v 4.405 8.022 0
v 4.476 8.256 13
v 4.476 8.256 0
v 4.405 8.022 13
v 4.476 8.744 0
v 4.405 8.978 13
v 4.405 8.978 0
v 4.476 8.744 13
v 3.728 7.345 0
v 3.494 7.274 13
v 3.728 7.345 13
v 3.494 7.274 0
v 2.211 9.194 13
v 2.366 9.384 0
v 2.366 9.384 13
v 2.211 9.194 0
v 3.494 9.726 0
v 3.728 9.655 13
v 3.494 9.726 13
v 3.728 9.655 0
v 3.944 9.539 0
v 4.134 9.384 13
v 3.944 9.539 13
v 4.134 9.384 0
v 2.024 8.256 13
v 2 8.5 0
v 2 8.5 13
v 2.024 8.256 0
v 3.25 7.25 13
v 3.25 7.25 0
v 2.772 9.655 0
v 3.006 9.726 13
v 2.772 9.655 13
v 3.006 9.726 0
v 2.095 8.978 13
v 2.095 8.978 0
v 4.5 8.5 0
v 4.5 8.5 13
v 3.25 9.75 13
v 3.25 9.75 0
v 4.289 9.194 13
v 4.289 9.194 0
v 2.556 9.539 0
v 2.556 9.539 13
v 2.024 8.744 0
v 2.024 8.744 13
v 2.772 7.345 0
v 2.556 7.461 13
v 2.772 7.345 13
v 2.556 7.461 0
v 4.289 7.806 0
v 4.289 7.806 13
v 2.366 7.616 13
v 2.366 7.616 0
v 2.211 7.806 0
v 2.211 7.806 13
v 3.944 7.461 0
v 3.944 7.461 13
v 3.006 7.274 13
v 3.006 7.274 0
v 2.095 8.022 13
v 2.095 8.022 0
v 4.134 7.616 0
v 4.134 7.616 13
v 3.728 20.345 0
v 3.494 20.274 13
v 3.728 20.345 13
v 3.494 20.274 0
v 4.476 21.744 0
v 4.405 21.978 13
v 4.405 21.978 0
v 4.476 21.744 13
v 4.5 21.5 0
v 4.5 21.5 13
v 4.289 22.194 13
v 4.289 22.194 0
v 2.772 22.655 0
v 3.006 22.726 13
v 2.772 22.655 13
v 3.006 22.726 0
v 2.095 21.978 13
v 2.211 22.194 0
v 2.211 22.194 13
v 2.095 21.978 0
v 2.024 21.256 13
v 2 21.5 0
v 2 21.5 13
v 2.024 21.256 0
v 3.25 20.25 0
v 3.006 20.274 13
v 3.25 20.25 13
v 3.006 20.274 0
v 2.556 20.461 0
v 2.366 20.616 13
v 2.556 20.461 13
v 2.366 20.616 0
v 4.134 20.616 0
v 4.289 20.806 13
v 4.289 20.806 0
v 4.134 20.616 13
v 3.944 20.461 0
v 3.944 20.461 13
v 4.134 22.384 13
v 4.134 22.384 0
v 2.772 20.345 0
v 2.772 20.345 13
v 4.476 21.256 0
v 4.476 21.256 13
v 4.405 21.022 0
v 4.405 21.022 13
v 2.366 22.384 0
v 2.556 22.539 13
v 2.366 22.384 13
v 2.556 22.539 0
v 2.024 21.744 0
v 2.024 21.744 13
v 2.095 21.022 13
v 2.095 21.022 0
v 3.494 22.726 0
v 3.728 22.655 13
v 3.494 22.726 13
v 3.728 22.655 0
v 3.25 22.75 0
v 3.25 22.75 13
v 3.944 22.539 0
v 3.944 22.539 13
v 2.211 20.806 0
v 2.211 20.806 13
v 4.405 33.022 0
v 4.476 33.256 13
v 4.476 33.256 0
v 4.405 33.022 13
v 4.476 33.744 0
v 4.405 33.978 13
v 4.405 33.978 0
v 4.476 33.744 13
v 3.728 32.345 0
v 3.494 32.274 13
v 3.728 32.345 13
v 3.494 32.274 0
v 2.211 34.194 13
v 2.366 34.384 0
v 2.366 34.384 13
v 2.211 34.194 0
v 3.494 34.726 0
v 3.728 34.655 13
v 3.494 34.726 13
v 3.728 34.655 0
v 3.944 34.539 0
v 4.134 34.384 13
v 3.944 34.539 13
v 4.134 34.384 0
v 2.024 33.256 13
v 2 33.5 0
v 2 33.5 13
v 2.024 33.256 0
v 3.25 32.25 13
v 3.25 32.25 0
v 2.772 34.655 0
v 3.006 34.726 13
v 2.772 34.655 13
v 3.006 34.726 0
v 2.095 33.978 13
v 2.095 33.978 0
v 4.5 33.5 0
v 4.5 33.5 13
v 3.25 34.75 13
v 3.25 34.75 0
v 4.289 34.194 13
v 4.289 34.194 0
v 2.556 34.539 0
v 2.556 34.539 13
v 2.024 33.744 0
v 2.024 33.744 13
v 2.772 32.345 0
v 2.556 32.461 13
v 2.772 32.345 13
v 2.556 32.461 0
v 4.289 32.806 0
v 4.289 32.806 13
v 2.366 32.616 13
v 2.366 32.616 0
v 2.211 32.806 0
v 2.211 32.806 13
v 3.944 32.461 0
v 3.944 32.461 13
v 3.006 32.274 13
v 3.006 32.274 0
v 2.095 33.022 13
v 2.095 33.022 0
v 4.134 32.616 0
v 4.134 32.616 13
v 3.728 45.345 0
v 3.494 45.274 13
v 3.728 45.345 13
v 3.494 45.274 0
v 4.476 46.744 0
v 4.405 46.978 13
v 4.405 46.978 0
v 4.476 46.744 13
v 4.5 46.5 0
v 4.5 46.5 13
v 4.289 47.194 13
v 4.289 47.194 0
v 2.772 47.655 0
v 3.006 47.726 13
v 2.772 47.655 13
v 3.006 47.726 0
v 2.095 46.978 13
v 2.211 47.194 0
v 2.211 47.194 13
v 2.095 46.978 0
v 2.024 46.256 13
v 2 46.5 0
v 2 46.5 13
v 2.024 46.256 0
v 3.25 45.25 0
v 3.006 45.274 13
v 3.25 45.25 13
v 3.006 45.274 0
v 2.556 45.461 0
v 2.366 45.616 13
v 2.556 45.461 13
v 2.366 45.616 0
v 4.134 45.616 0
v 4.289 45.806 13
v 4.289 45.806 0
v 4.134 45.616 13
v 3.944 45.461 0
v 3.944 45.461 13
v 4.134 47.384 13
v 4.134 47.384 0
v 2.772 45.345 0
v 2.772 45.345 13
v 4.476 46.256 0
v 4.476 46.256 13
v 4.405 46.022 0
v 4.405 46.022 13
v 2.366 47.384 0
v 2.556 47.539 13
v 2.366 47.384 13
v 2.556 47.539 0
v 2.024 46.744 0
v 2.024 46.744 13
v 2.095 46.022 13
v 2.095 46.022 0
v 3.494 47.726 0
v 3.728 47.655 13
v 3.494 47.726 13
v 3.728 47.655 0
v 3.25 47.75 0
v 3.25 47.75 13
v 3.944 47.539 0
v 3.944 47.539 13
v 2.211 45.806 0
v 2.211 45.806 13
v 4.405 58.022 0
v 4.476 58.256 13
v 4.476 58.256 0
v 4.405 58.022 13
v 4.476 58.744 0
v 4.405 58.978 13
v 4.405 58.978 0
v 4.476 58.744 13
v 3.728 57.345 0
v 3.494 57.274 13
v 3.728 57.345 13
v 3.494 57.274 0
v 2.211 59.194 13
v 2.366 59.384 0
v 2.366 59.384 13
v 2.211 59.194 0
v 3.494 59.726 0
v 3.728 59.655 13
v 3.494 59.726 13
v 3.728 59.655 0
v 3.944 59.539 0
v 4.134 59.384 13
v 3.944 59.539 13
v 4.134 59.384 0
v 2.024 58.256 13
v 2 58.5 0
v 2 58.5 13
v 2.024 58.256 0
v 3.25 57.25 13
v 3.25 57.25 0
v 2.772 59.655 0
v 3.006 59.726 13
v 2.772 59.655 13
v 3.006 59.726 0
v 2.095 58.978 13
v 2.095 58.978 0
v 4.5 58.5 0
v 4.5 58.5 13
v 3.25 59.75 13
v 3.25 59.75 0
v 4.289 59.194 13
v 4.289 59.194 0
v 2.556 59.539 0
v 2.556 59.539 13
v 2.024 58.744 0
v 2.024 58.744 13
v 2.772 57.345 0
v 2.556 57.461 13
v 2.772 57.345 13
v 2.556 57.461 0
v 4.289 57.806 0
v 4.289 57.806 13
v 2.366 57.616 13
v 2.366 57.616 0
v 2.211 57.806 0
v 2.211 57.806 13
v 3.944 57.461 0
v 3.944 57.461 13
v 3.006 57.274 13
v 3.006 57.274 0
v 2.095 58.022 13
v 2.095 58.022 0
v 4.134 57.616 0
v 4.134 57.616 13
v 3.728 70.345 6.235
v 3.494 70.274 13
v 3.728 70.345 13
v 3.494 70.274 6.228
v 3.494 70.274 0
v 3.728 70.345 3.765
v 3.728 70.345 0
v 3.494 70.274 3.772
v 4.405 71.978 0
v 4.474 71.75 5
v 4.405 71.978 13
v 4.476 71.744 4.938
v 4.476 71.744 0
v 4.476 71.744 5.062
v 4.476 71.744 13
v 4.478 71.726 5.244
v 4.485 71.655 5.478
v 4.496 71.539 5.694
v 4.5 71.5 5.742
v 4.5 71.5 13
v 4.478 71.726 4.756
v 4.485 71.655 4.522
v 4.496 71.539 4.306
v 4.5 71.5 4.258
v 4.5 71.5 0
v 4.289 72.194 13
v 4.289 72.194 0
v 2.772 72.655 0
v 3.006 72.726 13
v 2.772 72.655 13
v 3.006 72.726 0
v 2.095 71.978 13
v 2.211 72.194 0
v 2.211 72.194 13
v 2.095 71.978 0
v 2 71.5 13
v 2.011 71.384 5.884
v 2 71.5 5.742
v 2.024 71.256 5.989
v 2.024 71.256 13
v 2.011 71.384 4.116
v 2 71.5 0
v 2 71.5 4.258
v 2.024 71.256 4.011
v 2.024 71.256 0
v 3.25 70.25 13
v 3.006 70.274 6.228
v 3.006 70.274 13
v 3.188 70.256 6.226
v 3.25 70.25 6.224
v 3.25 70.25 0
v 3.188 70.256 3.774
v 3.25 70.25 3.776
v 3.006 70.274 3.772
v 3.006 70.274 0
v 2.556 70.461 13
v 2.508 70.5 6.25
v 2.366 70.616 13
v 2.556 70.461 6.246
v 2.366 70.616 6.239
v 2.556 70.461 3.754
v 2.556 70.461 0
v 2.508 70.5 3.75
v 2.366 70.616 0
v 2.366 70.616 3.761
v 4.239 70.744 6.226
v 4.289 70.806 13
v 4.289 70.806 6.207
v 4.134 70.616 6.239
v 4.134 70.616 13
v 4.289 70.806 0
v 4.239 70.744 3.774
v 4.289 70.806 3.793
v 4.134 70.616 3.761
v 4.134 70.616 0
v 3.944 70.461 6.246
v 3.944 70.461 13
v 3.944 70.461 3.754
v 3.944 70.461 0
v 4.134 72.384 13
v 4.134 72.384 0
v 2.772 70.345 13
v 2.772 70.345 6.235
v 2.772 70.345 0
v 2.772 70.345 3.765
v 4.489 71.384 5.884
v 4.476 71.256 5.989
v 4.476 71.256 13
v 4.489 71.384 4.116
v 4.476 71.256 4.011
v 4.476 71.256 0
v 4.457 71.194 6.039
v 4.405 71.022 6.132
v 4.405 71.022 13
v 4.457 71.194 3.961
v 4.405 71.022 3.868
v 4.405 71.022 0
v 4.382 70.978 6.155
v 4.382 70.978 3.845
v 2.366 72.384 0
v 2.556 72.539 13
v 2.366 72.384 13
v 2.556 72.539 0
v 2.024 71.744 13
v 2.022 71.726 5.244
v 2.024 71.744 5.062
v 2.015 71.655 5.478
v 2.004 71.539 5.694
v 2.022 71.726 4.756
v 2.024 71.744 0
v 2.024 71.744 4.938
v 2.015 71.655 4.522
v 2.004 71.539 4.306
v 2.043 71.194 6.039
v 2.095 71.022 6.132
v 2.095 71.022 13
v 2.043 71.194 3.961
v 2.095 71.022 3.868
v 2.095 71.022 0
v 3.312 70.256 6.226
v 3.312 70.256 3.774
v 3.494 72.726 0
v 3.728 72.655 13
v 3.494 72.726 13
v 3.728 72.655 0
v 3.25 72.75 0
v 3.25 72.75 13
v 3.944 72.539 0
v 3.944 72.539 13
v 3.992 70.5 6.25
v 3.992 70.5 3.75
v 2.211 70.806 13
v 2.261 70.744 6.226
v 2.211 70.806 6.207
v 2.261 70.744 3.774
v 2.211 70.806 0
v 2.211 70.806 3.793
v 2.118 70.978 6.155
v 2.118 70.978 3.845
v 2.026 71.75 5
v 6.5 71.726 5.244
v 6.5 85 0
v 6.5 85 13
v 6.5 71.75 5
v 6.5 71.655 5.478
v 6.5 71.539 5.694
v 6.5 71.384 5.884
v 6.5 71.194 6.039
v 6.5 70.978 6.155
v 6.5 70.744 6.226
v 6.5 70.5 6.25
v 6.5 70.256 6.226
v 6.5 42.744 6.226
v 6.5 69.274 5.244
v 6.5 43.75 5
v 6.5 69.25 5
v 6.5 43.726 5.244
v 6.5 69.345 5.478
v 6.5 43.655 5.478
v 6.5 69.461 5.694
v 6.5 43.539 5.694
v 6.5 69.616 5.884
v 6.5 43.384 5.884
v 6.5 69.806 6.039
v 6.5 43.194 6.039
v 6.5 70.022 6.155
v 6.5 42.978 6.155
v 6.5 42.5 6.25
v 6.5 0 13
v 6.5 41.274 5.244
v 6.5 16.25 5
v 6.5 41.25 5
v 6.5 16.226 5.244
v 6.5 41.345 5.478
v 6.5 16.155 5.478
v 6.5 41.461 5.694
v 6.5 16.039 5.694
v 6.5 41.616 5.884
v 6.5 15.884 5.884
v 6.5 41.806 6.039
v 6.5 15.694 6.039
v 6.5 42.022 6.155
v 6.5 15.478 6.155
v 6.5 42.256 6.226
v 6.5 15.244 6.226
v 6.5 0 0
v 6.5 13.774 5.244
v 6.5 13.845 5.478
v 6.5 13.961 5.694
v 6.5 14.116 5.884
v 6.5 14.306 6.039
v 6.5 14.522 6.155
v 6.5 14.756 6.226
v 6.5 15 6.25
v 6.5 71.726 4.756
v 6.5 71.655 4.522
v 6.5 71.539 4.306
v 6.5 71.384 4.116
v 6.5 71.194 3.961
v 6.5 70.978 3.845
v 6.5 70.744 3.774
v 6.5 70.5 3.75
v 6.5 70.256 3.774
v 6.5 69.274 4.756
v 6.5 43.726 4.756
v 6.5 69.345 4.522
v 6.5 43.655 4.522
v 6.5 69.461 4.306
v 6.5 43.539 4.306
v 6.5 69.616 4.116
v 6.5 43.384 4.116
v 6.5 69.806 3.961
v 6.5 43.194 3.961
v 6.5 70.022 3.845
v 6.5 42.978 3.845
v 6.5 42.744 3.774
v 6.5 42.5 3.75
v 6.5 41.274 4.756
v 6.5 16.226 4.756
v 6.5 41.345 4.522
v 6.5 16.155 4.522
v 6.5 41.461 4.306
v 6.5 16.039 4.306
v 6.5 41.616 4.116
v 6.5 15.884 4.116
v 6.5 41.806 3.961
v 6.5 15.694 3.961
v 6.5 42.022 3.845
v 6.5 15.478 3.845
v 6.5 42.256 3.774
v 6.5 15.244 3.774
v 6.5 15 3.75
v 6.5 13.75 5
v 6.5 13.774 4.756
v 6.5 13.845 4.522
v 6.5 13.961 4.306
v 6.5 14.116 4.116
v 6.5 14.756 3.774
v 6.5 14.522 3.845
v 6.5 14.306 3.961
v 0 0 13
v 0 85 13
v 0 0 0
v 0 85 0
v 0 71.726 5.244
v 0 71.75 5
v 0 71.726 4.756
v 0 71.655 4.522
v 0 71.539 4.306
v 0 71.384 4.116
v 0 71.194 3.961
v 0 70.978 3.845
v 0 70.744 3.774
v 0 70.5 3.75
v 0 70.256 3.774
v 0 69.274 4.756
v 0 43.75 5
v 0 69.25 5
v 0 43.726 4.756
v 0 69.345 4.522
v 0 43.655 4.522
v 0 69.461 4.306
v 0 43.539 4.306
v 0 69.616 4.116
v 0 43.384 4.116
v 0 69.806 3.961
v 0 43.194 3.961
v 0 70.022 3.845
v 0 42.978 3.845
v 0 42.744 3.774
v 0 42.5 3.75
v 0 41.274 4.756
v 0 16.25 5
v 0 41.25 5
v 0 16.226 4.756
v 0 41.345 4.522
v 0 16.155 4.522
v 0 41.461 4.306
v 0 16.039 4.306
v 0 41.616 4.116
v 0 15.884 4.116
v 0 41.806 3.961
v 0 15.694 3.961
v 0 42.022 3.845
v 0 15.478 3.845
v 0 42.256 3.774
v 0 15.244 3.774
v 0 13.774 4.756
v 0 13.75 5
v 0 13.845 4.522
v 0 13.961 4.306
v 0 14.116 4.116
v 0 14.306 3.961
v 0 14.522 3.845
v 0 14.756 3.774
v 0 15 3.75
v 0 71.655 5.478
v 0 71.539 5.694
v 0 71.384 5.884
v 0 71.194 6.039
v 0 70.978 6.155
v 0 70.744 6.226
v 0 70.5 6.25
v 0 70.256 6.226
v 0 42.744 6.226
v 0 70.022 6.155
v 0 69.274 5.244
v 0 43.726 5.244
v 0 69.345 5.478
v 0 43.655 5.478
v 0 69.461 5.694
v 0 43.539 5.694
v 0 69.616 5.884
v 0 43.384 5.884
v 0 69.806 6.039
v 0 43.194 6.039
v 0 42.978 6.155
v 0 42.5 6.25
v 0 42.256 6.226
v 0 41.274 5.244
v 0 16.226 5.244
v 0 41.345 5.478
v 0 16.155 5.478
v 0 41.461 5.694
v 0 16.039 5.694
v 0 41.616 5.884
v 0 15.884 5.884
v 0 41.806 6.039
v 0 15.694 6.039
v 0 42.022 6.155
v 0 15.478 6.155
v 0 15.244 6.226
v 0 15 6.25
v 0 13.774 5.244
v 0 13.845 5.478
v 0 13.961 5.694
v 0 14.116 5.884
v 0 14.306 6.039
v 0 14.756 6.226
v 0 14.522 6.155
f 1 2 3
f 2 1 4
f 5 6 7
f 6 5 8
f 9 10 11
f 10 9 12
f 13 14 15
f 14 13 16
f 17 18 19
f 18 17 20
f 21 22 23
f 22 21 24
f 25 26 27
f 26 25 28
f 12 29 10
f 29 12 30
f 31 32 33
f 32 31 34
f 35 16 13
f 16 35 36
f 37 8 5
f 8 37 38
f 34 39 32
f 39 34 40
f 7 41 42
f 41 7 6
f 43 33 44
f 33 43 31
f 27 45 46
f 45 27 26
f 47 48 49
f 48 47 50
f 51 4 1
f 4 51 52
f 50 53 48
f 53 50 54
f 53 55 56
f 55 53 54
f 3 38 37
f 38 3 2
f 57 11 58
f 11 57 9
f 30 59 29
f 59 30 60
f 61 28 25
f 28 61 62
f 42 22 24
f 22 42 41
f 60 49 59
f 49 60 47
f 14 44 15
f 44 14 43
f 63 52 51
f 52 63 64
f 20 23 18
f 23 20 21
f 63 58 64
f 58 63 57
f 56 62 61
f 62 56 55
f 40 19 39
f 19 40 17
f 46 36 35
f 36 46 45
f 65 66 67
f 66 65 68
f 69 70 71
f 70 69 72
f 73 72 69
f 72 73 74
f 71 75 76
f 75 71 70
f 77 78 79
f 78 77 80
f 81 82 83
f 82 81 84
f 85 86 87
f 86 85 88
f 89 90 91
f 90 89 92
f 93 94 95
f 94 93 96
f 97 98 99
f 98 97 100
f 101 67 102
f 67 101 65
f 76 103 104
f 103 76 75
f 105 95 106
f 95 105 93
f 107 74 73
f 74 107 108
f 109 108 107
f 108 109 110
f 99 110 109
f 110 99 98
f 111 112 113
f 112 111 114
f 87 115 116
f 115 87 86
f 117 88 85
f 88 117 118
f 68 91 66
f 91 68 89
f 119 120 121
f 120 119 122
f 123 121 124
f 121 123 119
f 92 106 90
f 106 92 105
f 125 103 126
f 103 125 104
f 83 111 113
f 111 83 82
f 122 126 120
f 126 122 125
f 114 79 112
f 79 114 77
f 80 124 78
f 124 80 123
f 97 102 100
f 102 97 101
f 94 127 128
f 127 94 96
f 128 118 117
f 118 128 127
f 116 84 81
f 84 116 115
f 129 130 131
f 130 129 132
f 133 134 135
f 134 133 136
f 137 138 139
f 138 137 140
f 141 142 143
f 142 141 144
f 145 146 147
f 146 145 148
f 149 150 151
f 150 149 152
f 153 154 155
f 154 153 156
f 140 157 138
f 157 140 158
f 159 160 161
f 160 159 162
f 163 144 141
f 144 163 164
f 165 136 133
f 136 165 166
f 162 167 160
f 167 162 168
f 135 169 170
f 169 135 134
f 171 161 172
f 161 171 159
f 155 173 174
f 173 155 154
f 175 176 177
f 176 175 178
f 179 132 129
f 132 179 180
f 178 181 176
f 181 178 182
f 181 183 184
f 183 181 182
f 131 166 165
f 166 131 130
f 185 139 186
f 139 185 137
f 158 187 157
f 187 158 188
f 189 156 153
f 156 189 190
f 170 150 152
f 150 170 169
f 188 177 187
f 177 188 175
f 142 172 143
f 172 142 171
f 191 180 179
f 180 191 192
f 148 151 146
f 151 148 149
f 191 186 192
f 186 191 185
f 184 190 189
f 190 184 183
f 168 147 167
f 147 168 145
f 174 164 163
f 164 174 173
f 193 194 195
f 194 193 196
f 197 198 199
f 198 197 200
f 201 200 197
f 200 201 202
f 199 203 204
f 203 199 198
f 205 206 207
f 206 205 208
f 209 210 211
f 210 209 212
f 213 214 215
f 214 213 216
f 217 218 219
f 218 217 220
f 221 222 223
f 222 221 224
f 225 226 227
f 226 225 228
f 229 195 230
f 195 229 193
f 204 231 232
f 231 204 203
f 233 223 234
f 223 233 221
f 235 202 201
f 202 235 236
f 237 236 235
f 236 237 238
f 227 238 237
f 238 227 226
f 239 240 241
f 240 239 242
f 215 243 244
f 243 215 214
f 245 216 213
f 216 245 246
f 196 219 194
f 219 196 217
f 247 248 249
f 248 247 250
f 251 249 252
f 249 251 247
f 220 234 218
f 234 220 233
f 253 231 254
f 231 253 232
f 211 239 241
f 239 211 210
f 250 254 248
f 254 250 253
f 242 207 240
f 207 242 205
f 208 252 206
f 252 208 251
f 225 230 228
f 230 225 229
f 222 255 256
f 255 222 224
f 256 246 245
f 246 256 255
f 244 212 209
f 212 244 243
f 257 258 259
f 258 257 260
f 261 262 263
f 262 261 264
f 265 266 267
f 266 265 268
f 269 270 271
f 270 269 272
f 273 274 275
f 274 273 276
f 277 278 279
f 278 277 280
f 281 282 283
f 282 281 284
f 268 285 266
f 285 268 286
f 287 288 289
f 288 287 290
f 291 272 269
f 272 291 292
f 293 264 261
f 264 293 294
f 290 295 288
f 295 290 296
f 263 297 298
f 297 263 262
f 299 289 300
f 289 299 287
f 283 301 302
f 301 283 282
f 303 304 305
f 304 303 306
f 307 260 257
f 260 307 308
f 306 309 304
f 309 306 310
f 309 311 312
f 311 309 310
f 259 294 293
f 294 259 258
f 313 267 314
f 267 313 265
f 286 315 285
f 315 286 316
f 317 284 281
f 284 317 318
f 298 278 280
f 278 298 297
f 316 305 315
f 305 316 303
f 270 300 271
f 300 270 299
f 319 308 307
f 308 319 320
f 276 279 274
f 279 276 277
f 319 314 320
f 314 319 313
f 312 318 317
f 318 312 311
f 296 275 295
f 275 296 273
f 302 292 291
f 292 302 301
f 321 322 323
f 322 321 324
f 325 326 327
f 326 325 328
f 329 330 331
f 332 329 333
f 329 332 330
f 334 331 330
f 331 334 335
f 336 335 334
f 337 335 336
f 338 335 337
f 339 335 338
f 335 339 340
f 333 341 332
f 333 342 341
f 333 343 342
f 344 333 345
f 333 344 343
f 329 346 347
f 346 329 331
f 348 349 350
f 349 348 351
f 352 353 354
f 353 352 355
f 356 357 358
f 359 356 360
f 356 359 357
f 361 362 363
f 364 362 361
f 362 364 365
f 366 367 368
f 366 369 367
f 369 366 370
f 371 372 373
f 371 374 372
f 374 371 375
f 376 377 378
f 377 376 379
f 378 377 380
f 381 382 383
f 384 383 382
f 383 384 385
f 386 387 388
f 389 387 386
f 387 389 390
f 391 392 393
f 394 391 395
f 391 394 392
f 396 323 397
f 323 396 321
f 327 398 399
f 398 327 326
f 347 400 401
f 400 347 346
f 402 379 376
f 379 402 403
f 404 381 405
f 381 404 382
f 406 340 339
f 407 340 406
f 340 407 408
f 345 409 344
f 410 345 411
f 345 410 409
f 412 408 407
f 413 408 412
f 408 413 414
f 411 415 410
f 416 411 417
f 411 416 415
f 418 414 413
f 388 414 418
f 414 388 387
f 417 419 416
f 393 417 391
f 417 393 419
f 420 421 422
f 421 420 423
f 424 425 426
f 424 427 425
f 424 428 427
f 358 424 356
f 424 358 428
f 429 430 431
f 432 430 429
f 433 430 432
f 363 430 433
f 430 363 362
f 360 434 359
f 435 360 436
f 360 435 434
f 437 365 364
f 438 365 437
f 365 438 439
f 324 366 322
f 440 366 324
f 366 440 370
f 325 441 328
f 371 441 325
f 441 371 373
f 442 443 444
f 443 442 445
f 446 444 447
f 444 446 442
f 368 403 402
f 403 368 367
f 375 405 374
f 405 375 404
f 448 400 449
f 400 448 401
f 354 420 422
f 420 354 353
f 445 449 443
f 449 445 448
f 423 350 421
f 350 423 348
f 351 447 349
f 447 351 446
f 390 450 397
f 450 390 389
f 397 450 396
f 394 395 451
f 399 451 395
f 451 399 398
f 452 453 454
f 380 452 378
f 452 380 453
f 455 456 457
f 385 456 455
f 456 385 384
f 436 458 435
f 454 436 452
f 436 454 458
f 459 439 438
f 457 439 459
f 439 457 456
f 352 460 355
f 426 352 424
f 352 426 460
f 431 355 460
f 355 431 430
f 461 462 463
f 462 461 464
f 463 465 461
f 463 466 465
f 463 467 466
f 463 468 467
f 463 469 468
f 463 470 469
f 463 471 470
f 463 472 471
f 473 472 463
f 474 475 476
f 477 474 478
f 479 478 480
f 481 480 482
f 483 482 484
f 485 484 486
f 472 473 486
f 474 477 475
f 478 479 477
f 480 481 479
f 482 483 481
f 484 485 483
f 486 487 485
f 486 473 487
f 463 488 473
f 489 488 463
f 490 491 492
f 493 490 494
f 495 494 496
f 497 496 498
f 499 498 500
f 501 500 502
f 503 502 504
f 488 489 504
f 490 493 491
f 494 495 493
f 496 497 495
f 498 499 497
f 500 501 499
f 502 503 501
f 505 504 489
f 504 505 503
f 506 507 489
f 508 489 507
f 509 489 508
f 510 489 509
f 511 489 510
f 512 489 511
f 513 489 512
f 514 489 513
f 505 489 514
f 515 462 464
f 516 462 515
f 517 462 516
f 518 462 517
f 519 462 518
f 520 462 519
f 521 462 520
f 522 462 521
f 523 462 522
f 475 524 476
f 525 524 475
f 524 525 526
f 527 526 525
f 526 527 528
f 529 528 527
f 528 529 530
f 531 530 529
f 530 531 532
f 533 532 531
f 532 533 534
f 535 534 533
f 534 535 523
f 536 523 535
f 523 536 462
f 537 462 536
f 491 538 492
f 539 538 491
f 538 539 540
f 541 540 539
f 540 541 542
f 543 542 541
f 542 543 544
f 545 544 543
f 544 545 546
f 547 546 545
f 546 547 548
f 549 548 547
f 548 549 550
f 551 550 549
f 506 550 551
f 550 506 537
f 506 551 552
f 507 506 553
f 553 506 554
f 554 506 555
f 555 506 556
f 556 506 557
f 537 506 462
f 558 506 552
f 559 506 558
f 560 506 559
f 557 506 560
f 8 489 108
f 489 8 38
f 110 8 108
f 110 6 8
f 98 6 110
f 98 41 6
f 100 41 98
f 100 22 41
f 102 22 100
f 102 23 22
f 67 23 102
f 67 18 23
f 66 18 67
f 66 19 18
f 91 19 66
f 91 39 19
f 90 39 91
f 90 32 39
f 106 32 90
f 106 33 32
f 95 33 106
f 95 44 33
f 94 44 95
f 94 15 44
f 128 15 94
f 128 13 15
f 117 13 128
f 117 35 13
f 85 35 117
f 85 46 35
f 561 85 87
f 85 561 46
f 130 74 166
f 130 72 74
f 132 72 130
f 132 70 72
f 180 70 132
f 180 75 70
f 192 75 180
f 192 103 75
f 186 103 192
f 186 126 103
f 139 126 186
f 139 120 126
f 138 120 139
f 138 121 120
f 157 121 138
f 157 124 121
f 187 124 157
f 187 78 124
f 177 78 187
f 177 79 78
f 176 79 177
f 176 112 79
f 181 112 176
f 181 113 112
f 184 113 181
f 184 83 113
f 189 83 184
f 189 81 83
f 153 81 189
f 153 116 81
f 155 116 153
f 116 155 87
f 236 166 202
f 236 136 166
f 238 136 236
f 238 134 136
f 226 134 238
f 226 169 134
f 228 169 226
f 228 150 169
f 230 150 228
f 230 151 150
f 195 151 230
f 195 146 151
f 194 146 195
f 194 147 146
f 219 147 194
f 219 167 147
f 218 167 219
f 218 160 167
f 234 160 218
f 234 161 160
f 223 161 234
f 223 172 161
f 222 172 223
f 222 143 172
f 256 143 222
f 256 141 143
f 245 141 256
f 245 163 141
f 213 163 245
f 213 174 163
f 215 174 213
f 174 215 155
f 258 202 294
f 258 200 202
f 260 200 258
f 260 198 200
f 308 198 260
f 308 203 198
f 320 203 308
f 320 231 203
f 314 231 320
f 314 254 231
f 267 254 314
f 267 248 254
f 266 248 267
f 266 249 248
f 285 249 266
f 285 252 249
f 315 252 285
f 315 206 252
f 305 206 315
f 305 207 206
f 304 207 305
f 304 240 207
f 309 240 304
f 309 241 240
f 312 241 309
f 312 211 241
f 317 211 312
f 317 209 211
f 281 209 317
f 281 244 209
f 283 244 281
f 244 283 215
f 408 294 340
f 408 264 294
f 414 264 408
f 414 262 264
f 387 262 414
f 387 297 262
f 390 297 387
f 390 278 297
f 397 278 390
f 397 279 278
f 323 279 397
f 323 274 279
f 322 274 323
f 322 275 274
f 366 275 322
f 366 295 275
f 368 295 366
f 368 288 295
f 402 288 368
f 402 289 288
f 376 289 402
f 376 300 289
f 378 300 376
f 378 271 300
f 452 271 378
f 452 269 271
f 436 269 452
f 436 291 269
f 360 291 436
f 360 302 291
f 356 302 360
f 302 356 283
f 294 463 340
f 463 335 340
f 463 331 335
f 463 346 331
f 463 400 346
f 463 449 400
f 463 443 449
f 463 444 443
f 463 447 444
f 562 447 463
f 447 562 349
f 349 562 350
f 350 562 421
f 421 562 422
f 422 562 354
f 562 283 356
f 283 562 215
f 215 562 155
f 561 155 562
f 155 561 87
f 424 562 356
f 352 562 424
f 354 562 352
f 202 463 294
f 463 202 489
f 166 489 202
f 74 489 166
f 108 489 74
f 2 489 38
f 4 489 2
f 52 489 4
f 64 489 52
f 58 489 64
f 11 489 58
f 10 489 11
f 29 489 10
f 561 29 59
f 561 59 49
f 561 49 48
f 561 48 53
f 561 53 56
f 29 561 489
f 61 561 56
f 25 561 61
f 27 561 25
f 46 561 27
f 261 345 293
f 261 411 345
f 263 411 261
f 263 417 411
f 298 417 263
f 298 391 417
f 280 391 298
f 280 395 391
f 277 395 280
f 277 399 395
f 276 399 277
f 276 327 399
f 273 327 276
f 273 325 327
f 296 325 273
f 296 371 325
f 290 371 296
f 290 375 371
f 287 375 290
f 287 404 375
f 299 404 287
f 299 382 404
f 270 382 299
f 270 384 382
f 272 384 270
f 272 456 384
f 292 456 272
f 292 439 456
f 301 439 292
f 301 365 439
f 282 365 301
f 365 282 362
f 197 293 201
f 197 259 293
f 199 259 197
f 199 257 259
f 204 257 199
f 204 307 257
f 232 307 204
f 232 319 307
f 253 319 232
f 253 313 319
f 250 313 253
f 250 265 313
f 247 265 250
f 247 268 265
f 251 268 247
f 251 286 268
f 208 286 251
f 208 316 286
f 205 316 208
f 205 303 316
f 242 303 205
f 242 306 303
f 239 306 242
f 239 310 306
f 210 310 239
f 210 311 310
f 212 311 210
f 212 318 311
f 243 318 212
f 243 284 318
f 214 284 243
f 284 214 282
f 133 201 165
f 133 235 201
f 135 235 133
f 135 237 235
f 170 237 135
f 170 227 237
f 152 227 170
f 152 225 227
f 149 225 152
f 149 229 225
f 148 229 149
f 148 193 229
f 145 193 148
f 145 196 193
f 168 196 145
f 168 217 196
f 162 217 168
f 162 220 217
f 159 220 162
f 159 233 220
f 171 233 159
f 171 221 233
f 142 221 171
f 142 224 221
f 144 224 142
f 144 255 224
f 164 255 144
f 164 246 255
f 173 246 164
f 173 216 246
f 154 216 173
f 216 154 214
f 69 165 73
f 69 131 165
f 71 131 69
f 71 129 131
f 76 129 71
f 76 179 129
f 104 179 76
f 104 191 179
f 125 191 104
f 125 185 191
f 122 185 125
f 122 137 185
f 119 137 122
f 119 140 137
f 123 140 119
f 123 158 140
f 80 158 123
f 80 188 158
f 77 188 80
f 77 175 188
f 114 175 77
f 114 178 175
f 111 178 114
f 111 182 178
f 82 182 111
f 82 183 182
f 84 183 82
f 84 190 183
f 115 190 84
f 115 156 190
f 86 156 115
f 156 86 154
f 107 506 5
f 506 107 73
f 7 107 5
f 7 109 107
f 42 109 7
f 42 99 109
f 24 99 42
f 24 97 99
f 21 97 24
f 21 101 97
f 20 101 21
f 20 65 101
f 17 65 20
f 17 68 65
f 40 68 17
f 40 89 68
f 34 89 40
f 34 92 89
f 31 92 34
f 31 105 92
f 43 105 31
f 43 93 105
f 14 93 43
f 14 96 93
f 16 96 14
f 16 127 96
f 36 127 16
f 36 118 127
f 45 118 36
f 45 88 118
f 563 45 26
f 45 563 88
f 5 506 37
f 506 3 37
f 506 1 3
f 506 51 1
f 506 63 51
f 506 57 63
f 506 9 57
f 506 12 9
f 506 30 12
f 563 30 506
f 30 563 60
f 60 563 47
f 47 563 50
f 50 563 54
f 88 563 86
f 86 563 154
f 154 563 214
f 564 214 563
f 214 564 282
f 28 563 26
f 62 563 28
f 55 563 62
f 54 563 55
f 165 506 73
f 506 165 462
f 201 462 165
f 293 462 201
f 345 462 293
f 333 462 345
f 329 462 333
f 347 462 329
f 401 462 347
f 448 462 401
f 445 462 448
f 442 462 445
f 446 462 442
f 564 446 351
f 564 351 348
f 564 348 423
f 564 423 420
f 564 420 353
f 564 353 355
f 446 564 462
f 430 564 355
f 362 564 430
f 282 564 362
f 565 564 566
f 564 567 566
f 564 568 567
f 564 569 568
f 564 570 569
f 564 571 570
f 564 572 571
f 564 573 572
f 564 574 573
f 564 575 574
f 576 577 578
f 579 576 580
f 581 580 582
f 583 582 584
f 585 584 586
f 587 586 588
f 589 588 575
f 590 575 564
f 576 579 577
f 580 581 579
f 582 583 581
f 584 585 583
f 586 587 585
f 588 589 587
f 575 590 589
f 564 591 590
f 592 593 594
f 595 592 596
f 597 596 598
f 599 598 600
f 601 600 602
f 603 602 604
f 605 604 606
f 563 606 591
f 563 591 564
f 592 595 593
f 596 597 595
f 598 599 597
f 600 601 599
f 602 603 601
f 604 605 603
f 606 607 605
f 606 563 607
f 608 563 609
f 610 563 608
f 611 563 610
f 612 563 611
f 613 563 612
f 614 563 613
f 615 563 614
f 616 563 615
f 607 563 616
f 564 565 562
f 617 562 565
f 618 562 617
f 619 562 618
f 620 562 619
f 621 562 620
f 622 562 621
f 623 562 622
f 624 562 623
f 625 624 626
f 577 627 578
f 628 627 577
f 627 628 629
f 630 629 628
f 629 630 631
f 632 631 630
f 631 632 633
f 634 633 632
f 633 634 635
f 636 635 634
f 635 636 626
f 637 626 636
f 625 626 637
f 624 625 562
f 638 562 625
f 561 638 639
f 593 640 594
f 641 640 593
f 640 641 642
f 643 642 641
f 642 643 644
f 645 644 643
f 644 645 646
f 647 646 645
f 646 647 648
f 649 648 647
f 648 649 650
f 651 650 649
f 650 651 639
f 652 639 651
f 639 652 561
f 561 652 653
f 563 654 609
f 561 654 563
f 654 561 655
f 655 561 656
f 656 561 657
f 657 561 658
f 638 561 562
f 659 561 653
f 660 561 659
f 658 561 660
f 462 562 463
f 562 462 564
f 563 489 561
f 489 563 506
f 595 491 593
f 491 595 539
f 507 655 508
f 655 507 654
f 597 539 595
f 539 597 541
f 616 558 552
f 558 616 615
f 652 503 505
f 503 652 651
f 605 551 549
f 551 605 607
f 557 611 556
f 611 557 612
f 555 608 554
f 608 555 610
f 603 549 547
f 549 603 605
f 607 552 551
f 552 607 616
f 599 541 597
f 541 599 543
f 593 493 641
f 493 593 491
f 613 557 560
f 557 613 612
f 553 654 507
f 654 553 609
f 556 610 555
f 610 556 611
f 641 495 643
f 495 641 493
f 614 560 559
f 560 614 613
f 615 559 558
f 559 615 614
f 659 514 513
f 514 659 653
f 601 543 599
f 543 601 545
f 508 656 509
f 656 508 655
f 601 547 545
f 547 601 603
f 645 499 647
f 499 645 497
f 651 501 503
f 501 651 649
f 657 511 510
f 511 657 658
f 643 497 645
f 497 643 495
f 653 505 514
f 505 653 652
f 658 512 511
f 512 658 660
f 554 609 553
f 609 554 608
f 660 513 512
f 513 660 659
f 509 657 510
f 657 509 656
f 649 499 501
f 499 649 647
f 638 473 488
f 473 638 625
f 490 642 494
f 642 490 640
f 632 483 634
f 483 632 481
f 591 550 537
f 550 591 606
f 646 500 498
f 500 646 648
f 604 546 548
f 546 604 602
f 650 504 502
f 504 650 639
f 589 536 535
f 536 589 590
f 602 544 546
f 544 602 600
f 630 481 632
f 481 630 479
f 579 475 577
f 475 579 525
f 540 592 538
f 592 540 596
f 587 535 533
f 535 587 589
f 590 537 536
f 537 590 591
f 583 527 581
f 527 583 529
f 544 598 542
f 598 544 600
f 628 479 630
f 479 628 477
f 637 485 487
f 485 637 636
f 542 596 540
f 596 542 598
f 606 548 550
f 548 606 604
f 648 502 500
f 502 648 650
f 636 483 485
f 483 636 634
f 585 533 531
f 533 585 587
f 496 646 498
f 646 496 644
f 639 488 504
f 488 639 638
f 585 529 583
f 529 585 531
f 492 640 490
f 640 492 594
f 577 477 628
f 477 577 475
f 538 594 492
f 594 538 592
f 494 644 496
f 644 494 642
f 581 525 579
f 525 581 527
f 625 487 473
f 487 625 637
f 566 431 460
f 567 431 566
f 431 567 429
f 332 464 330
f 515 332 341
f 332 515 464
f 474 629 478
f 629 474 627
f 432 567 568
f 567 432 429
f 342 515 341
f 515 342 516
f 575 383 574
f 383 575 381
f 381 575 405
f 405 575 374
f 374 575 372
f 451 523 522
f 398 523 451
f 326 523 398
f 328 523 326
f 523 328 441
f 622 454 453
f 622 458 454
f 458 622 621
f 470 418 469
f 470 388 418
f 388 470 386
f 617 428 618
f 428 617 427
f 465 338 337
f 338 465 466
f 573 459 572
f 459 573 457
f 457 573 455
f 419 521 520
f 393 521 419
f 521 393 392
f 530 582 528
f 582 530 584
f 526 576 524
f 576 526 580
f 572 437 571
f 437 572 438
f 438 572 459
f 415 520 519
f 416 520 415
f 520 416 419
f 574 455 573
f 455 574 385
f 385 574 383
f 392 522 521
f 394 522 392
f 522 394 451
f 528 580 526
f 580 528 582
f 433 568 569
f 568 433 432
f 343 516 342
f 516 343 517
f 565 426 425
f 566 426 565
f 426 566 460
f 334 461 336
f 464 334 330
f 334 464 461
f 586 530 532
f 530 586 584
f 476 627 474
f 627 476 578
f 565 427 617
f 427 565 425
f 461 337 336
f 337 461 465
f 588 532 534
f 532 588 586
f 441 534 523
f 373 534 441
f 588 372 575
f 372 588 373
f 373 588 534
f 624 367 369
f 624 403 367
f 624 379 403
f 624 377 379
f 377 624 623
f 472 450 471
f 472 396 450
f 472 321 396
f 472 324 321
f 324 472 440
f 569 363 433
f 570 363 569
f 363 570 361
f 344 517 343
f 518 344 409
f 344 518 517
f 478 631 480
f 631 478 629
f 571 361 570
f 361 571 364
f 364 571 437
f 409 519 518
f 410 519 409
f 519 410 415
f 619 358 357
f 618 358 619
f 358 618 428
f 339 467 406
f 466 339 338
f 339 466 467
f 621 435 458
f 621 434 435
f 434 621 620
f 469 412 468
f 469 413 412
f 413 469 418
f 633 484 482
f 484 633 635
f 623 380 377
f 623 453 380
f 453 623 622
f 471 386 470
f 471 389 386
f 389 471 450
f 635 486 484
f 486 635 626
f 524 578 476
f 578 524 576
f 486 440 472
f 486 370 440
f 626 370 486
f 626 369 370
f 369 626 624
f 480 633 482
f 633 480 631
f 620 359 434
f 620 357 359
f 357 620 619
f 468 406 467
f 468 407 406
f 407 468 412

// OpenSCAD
//EuroCardGuidebase2

$fn = 32;

ECBeamHeight = 13.0;
ECBeamWidth = 6.5;
ECBeamLength = 85.0;

mountHoleDist = 13.0;
mountHole1Offset = 15.0;
mountHole2Offset = mountHole1Offset + 25.0;
mountHole3Offset = mountHole1Offset + 50.0;
mountHole = 2.5;

bpHole1Offset = 15.0;
bpHole2Offset = 42.5;
bpHole3Offset = 70.5;
bpHoleZOffset = 5.0;

module beam() {
    cube([ECBeamWidth, ECBeamLength, ECBeamHeight]);
}

module mountHoleSet() {
    translate([0, -mountHoleDist / 2, 0]) cylinder(d = mountHole, h = ECBeamHeight + 0.02);
    translate([0, mountHoleDist / 2, 0]) cylinder(d = mountHole, h = ECBeamHeight + 0.02);
}

difference() {
    beam();
    translate([ECBeamWidth / 2, 0, -0.01]) {
        // guide 1
        translate([0, mountHole1Offset, 0]) mountHoleSet();
        // guide 2
        translate([0, mountHole2Offset, 0]) mountHoleSet();
        // guide 3
        translate([0, mountHole3Offset, 0]) mountHoleSet();
    }
    // back plane hole 1
    translate([-0.01, bpHole1Offset, bpHoleZOffset]) rotate([0, 90, 0]) 
        cylinder(d = mountHole, h = ECBeamWidth + 0.02);
    translate([-0.01, bpHole2Offset, bpHoleZOffset]) rotate([0, 90, 0]) 
        cylinder(d = mountHole, h = ECBeamWidth + 0.02);
    translate([-0.01, bpHole3Offset, bpHoleZOffset]) rotate([0, 90, 0]) 
        cylinder(d = mountHole, h = ECBeamWidth + 0.02); 
    //20.5
//    translate([-0.01, 15.0, 0]) rotate([0, 90, 0]) cylinder(d = 1, h = ECBeamWidth + 0.02);
//    translate([-0.01, 40.0, 0]) rotate([0, 90, 0]) cylinder(d = 1, h = ECBeamWidth + 0.02);
//    translate([-0.01, 65.0, 0]) rotate([0, 90, 0]) cylinder(d = 1, h = ECBeamWidth + 0.02);
    
    
}
